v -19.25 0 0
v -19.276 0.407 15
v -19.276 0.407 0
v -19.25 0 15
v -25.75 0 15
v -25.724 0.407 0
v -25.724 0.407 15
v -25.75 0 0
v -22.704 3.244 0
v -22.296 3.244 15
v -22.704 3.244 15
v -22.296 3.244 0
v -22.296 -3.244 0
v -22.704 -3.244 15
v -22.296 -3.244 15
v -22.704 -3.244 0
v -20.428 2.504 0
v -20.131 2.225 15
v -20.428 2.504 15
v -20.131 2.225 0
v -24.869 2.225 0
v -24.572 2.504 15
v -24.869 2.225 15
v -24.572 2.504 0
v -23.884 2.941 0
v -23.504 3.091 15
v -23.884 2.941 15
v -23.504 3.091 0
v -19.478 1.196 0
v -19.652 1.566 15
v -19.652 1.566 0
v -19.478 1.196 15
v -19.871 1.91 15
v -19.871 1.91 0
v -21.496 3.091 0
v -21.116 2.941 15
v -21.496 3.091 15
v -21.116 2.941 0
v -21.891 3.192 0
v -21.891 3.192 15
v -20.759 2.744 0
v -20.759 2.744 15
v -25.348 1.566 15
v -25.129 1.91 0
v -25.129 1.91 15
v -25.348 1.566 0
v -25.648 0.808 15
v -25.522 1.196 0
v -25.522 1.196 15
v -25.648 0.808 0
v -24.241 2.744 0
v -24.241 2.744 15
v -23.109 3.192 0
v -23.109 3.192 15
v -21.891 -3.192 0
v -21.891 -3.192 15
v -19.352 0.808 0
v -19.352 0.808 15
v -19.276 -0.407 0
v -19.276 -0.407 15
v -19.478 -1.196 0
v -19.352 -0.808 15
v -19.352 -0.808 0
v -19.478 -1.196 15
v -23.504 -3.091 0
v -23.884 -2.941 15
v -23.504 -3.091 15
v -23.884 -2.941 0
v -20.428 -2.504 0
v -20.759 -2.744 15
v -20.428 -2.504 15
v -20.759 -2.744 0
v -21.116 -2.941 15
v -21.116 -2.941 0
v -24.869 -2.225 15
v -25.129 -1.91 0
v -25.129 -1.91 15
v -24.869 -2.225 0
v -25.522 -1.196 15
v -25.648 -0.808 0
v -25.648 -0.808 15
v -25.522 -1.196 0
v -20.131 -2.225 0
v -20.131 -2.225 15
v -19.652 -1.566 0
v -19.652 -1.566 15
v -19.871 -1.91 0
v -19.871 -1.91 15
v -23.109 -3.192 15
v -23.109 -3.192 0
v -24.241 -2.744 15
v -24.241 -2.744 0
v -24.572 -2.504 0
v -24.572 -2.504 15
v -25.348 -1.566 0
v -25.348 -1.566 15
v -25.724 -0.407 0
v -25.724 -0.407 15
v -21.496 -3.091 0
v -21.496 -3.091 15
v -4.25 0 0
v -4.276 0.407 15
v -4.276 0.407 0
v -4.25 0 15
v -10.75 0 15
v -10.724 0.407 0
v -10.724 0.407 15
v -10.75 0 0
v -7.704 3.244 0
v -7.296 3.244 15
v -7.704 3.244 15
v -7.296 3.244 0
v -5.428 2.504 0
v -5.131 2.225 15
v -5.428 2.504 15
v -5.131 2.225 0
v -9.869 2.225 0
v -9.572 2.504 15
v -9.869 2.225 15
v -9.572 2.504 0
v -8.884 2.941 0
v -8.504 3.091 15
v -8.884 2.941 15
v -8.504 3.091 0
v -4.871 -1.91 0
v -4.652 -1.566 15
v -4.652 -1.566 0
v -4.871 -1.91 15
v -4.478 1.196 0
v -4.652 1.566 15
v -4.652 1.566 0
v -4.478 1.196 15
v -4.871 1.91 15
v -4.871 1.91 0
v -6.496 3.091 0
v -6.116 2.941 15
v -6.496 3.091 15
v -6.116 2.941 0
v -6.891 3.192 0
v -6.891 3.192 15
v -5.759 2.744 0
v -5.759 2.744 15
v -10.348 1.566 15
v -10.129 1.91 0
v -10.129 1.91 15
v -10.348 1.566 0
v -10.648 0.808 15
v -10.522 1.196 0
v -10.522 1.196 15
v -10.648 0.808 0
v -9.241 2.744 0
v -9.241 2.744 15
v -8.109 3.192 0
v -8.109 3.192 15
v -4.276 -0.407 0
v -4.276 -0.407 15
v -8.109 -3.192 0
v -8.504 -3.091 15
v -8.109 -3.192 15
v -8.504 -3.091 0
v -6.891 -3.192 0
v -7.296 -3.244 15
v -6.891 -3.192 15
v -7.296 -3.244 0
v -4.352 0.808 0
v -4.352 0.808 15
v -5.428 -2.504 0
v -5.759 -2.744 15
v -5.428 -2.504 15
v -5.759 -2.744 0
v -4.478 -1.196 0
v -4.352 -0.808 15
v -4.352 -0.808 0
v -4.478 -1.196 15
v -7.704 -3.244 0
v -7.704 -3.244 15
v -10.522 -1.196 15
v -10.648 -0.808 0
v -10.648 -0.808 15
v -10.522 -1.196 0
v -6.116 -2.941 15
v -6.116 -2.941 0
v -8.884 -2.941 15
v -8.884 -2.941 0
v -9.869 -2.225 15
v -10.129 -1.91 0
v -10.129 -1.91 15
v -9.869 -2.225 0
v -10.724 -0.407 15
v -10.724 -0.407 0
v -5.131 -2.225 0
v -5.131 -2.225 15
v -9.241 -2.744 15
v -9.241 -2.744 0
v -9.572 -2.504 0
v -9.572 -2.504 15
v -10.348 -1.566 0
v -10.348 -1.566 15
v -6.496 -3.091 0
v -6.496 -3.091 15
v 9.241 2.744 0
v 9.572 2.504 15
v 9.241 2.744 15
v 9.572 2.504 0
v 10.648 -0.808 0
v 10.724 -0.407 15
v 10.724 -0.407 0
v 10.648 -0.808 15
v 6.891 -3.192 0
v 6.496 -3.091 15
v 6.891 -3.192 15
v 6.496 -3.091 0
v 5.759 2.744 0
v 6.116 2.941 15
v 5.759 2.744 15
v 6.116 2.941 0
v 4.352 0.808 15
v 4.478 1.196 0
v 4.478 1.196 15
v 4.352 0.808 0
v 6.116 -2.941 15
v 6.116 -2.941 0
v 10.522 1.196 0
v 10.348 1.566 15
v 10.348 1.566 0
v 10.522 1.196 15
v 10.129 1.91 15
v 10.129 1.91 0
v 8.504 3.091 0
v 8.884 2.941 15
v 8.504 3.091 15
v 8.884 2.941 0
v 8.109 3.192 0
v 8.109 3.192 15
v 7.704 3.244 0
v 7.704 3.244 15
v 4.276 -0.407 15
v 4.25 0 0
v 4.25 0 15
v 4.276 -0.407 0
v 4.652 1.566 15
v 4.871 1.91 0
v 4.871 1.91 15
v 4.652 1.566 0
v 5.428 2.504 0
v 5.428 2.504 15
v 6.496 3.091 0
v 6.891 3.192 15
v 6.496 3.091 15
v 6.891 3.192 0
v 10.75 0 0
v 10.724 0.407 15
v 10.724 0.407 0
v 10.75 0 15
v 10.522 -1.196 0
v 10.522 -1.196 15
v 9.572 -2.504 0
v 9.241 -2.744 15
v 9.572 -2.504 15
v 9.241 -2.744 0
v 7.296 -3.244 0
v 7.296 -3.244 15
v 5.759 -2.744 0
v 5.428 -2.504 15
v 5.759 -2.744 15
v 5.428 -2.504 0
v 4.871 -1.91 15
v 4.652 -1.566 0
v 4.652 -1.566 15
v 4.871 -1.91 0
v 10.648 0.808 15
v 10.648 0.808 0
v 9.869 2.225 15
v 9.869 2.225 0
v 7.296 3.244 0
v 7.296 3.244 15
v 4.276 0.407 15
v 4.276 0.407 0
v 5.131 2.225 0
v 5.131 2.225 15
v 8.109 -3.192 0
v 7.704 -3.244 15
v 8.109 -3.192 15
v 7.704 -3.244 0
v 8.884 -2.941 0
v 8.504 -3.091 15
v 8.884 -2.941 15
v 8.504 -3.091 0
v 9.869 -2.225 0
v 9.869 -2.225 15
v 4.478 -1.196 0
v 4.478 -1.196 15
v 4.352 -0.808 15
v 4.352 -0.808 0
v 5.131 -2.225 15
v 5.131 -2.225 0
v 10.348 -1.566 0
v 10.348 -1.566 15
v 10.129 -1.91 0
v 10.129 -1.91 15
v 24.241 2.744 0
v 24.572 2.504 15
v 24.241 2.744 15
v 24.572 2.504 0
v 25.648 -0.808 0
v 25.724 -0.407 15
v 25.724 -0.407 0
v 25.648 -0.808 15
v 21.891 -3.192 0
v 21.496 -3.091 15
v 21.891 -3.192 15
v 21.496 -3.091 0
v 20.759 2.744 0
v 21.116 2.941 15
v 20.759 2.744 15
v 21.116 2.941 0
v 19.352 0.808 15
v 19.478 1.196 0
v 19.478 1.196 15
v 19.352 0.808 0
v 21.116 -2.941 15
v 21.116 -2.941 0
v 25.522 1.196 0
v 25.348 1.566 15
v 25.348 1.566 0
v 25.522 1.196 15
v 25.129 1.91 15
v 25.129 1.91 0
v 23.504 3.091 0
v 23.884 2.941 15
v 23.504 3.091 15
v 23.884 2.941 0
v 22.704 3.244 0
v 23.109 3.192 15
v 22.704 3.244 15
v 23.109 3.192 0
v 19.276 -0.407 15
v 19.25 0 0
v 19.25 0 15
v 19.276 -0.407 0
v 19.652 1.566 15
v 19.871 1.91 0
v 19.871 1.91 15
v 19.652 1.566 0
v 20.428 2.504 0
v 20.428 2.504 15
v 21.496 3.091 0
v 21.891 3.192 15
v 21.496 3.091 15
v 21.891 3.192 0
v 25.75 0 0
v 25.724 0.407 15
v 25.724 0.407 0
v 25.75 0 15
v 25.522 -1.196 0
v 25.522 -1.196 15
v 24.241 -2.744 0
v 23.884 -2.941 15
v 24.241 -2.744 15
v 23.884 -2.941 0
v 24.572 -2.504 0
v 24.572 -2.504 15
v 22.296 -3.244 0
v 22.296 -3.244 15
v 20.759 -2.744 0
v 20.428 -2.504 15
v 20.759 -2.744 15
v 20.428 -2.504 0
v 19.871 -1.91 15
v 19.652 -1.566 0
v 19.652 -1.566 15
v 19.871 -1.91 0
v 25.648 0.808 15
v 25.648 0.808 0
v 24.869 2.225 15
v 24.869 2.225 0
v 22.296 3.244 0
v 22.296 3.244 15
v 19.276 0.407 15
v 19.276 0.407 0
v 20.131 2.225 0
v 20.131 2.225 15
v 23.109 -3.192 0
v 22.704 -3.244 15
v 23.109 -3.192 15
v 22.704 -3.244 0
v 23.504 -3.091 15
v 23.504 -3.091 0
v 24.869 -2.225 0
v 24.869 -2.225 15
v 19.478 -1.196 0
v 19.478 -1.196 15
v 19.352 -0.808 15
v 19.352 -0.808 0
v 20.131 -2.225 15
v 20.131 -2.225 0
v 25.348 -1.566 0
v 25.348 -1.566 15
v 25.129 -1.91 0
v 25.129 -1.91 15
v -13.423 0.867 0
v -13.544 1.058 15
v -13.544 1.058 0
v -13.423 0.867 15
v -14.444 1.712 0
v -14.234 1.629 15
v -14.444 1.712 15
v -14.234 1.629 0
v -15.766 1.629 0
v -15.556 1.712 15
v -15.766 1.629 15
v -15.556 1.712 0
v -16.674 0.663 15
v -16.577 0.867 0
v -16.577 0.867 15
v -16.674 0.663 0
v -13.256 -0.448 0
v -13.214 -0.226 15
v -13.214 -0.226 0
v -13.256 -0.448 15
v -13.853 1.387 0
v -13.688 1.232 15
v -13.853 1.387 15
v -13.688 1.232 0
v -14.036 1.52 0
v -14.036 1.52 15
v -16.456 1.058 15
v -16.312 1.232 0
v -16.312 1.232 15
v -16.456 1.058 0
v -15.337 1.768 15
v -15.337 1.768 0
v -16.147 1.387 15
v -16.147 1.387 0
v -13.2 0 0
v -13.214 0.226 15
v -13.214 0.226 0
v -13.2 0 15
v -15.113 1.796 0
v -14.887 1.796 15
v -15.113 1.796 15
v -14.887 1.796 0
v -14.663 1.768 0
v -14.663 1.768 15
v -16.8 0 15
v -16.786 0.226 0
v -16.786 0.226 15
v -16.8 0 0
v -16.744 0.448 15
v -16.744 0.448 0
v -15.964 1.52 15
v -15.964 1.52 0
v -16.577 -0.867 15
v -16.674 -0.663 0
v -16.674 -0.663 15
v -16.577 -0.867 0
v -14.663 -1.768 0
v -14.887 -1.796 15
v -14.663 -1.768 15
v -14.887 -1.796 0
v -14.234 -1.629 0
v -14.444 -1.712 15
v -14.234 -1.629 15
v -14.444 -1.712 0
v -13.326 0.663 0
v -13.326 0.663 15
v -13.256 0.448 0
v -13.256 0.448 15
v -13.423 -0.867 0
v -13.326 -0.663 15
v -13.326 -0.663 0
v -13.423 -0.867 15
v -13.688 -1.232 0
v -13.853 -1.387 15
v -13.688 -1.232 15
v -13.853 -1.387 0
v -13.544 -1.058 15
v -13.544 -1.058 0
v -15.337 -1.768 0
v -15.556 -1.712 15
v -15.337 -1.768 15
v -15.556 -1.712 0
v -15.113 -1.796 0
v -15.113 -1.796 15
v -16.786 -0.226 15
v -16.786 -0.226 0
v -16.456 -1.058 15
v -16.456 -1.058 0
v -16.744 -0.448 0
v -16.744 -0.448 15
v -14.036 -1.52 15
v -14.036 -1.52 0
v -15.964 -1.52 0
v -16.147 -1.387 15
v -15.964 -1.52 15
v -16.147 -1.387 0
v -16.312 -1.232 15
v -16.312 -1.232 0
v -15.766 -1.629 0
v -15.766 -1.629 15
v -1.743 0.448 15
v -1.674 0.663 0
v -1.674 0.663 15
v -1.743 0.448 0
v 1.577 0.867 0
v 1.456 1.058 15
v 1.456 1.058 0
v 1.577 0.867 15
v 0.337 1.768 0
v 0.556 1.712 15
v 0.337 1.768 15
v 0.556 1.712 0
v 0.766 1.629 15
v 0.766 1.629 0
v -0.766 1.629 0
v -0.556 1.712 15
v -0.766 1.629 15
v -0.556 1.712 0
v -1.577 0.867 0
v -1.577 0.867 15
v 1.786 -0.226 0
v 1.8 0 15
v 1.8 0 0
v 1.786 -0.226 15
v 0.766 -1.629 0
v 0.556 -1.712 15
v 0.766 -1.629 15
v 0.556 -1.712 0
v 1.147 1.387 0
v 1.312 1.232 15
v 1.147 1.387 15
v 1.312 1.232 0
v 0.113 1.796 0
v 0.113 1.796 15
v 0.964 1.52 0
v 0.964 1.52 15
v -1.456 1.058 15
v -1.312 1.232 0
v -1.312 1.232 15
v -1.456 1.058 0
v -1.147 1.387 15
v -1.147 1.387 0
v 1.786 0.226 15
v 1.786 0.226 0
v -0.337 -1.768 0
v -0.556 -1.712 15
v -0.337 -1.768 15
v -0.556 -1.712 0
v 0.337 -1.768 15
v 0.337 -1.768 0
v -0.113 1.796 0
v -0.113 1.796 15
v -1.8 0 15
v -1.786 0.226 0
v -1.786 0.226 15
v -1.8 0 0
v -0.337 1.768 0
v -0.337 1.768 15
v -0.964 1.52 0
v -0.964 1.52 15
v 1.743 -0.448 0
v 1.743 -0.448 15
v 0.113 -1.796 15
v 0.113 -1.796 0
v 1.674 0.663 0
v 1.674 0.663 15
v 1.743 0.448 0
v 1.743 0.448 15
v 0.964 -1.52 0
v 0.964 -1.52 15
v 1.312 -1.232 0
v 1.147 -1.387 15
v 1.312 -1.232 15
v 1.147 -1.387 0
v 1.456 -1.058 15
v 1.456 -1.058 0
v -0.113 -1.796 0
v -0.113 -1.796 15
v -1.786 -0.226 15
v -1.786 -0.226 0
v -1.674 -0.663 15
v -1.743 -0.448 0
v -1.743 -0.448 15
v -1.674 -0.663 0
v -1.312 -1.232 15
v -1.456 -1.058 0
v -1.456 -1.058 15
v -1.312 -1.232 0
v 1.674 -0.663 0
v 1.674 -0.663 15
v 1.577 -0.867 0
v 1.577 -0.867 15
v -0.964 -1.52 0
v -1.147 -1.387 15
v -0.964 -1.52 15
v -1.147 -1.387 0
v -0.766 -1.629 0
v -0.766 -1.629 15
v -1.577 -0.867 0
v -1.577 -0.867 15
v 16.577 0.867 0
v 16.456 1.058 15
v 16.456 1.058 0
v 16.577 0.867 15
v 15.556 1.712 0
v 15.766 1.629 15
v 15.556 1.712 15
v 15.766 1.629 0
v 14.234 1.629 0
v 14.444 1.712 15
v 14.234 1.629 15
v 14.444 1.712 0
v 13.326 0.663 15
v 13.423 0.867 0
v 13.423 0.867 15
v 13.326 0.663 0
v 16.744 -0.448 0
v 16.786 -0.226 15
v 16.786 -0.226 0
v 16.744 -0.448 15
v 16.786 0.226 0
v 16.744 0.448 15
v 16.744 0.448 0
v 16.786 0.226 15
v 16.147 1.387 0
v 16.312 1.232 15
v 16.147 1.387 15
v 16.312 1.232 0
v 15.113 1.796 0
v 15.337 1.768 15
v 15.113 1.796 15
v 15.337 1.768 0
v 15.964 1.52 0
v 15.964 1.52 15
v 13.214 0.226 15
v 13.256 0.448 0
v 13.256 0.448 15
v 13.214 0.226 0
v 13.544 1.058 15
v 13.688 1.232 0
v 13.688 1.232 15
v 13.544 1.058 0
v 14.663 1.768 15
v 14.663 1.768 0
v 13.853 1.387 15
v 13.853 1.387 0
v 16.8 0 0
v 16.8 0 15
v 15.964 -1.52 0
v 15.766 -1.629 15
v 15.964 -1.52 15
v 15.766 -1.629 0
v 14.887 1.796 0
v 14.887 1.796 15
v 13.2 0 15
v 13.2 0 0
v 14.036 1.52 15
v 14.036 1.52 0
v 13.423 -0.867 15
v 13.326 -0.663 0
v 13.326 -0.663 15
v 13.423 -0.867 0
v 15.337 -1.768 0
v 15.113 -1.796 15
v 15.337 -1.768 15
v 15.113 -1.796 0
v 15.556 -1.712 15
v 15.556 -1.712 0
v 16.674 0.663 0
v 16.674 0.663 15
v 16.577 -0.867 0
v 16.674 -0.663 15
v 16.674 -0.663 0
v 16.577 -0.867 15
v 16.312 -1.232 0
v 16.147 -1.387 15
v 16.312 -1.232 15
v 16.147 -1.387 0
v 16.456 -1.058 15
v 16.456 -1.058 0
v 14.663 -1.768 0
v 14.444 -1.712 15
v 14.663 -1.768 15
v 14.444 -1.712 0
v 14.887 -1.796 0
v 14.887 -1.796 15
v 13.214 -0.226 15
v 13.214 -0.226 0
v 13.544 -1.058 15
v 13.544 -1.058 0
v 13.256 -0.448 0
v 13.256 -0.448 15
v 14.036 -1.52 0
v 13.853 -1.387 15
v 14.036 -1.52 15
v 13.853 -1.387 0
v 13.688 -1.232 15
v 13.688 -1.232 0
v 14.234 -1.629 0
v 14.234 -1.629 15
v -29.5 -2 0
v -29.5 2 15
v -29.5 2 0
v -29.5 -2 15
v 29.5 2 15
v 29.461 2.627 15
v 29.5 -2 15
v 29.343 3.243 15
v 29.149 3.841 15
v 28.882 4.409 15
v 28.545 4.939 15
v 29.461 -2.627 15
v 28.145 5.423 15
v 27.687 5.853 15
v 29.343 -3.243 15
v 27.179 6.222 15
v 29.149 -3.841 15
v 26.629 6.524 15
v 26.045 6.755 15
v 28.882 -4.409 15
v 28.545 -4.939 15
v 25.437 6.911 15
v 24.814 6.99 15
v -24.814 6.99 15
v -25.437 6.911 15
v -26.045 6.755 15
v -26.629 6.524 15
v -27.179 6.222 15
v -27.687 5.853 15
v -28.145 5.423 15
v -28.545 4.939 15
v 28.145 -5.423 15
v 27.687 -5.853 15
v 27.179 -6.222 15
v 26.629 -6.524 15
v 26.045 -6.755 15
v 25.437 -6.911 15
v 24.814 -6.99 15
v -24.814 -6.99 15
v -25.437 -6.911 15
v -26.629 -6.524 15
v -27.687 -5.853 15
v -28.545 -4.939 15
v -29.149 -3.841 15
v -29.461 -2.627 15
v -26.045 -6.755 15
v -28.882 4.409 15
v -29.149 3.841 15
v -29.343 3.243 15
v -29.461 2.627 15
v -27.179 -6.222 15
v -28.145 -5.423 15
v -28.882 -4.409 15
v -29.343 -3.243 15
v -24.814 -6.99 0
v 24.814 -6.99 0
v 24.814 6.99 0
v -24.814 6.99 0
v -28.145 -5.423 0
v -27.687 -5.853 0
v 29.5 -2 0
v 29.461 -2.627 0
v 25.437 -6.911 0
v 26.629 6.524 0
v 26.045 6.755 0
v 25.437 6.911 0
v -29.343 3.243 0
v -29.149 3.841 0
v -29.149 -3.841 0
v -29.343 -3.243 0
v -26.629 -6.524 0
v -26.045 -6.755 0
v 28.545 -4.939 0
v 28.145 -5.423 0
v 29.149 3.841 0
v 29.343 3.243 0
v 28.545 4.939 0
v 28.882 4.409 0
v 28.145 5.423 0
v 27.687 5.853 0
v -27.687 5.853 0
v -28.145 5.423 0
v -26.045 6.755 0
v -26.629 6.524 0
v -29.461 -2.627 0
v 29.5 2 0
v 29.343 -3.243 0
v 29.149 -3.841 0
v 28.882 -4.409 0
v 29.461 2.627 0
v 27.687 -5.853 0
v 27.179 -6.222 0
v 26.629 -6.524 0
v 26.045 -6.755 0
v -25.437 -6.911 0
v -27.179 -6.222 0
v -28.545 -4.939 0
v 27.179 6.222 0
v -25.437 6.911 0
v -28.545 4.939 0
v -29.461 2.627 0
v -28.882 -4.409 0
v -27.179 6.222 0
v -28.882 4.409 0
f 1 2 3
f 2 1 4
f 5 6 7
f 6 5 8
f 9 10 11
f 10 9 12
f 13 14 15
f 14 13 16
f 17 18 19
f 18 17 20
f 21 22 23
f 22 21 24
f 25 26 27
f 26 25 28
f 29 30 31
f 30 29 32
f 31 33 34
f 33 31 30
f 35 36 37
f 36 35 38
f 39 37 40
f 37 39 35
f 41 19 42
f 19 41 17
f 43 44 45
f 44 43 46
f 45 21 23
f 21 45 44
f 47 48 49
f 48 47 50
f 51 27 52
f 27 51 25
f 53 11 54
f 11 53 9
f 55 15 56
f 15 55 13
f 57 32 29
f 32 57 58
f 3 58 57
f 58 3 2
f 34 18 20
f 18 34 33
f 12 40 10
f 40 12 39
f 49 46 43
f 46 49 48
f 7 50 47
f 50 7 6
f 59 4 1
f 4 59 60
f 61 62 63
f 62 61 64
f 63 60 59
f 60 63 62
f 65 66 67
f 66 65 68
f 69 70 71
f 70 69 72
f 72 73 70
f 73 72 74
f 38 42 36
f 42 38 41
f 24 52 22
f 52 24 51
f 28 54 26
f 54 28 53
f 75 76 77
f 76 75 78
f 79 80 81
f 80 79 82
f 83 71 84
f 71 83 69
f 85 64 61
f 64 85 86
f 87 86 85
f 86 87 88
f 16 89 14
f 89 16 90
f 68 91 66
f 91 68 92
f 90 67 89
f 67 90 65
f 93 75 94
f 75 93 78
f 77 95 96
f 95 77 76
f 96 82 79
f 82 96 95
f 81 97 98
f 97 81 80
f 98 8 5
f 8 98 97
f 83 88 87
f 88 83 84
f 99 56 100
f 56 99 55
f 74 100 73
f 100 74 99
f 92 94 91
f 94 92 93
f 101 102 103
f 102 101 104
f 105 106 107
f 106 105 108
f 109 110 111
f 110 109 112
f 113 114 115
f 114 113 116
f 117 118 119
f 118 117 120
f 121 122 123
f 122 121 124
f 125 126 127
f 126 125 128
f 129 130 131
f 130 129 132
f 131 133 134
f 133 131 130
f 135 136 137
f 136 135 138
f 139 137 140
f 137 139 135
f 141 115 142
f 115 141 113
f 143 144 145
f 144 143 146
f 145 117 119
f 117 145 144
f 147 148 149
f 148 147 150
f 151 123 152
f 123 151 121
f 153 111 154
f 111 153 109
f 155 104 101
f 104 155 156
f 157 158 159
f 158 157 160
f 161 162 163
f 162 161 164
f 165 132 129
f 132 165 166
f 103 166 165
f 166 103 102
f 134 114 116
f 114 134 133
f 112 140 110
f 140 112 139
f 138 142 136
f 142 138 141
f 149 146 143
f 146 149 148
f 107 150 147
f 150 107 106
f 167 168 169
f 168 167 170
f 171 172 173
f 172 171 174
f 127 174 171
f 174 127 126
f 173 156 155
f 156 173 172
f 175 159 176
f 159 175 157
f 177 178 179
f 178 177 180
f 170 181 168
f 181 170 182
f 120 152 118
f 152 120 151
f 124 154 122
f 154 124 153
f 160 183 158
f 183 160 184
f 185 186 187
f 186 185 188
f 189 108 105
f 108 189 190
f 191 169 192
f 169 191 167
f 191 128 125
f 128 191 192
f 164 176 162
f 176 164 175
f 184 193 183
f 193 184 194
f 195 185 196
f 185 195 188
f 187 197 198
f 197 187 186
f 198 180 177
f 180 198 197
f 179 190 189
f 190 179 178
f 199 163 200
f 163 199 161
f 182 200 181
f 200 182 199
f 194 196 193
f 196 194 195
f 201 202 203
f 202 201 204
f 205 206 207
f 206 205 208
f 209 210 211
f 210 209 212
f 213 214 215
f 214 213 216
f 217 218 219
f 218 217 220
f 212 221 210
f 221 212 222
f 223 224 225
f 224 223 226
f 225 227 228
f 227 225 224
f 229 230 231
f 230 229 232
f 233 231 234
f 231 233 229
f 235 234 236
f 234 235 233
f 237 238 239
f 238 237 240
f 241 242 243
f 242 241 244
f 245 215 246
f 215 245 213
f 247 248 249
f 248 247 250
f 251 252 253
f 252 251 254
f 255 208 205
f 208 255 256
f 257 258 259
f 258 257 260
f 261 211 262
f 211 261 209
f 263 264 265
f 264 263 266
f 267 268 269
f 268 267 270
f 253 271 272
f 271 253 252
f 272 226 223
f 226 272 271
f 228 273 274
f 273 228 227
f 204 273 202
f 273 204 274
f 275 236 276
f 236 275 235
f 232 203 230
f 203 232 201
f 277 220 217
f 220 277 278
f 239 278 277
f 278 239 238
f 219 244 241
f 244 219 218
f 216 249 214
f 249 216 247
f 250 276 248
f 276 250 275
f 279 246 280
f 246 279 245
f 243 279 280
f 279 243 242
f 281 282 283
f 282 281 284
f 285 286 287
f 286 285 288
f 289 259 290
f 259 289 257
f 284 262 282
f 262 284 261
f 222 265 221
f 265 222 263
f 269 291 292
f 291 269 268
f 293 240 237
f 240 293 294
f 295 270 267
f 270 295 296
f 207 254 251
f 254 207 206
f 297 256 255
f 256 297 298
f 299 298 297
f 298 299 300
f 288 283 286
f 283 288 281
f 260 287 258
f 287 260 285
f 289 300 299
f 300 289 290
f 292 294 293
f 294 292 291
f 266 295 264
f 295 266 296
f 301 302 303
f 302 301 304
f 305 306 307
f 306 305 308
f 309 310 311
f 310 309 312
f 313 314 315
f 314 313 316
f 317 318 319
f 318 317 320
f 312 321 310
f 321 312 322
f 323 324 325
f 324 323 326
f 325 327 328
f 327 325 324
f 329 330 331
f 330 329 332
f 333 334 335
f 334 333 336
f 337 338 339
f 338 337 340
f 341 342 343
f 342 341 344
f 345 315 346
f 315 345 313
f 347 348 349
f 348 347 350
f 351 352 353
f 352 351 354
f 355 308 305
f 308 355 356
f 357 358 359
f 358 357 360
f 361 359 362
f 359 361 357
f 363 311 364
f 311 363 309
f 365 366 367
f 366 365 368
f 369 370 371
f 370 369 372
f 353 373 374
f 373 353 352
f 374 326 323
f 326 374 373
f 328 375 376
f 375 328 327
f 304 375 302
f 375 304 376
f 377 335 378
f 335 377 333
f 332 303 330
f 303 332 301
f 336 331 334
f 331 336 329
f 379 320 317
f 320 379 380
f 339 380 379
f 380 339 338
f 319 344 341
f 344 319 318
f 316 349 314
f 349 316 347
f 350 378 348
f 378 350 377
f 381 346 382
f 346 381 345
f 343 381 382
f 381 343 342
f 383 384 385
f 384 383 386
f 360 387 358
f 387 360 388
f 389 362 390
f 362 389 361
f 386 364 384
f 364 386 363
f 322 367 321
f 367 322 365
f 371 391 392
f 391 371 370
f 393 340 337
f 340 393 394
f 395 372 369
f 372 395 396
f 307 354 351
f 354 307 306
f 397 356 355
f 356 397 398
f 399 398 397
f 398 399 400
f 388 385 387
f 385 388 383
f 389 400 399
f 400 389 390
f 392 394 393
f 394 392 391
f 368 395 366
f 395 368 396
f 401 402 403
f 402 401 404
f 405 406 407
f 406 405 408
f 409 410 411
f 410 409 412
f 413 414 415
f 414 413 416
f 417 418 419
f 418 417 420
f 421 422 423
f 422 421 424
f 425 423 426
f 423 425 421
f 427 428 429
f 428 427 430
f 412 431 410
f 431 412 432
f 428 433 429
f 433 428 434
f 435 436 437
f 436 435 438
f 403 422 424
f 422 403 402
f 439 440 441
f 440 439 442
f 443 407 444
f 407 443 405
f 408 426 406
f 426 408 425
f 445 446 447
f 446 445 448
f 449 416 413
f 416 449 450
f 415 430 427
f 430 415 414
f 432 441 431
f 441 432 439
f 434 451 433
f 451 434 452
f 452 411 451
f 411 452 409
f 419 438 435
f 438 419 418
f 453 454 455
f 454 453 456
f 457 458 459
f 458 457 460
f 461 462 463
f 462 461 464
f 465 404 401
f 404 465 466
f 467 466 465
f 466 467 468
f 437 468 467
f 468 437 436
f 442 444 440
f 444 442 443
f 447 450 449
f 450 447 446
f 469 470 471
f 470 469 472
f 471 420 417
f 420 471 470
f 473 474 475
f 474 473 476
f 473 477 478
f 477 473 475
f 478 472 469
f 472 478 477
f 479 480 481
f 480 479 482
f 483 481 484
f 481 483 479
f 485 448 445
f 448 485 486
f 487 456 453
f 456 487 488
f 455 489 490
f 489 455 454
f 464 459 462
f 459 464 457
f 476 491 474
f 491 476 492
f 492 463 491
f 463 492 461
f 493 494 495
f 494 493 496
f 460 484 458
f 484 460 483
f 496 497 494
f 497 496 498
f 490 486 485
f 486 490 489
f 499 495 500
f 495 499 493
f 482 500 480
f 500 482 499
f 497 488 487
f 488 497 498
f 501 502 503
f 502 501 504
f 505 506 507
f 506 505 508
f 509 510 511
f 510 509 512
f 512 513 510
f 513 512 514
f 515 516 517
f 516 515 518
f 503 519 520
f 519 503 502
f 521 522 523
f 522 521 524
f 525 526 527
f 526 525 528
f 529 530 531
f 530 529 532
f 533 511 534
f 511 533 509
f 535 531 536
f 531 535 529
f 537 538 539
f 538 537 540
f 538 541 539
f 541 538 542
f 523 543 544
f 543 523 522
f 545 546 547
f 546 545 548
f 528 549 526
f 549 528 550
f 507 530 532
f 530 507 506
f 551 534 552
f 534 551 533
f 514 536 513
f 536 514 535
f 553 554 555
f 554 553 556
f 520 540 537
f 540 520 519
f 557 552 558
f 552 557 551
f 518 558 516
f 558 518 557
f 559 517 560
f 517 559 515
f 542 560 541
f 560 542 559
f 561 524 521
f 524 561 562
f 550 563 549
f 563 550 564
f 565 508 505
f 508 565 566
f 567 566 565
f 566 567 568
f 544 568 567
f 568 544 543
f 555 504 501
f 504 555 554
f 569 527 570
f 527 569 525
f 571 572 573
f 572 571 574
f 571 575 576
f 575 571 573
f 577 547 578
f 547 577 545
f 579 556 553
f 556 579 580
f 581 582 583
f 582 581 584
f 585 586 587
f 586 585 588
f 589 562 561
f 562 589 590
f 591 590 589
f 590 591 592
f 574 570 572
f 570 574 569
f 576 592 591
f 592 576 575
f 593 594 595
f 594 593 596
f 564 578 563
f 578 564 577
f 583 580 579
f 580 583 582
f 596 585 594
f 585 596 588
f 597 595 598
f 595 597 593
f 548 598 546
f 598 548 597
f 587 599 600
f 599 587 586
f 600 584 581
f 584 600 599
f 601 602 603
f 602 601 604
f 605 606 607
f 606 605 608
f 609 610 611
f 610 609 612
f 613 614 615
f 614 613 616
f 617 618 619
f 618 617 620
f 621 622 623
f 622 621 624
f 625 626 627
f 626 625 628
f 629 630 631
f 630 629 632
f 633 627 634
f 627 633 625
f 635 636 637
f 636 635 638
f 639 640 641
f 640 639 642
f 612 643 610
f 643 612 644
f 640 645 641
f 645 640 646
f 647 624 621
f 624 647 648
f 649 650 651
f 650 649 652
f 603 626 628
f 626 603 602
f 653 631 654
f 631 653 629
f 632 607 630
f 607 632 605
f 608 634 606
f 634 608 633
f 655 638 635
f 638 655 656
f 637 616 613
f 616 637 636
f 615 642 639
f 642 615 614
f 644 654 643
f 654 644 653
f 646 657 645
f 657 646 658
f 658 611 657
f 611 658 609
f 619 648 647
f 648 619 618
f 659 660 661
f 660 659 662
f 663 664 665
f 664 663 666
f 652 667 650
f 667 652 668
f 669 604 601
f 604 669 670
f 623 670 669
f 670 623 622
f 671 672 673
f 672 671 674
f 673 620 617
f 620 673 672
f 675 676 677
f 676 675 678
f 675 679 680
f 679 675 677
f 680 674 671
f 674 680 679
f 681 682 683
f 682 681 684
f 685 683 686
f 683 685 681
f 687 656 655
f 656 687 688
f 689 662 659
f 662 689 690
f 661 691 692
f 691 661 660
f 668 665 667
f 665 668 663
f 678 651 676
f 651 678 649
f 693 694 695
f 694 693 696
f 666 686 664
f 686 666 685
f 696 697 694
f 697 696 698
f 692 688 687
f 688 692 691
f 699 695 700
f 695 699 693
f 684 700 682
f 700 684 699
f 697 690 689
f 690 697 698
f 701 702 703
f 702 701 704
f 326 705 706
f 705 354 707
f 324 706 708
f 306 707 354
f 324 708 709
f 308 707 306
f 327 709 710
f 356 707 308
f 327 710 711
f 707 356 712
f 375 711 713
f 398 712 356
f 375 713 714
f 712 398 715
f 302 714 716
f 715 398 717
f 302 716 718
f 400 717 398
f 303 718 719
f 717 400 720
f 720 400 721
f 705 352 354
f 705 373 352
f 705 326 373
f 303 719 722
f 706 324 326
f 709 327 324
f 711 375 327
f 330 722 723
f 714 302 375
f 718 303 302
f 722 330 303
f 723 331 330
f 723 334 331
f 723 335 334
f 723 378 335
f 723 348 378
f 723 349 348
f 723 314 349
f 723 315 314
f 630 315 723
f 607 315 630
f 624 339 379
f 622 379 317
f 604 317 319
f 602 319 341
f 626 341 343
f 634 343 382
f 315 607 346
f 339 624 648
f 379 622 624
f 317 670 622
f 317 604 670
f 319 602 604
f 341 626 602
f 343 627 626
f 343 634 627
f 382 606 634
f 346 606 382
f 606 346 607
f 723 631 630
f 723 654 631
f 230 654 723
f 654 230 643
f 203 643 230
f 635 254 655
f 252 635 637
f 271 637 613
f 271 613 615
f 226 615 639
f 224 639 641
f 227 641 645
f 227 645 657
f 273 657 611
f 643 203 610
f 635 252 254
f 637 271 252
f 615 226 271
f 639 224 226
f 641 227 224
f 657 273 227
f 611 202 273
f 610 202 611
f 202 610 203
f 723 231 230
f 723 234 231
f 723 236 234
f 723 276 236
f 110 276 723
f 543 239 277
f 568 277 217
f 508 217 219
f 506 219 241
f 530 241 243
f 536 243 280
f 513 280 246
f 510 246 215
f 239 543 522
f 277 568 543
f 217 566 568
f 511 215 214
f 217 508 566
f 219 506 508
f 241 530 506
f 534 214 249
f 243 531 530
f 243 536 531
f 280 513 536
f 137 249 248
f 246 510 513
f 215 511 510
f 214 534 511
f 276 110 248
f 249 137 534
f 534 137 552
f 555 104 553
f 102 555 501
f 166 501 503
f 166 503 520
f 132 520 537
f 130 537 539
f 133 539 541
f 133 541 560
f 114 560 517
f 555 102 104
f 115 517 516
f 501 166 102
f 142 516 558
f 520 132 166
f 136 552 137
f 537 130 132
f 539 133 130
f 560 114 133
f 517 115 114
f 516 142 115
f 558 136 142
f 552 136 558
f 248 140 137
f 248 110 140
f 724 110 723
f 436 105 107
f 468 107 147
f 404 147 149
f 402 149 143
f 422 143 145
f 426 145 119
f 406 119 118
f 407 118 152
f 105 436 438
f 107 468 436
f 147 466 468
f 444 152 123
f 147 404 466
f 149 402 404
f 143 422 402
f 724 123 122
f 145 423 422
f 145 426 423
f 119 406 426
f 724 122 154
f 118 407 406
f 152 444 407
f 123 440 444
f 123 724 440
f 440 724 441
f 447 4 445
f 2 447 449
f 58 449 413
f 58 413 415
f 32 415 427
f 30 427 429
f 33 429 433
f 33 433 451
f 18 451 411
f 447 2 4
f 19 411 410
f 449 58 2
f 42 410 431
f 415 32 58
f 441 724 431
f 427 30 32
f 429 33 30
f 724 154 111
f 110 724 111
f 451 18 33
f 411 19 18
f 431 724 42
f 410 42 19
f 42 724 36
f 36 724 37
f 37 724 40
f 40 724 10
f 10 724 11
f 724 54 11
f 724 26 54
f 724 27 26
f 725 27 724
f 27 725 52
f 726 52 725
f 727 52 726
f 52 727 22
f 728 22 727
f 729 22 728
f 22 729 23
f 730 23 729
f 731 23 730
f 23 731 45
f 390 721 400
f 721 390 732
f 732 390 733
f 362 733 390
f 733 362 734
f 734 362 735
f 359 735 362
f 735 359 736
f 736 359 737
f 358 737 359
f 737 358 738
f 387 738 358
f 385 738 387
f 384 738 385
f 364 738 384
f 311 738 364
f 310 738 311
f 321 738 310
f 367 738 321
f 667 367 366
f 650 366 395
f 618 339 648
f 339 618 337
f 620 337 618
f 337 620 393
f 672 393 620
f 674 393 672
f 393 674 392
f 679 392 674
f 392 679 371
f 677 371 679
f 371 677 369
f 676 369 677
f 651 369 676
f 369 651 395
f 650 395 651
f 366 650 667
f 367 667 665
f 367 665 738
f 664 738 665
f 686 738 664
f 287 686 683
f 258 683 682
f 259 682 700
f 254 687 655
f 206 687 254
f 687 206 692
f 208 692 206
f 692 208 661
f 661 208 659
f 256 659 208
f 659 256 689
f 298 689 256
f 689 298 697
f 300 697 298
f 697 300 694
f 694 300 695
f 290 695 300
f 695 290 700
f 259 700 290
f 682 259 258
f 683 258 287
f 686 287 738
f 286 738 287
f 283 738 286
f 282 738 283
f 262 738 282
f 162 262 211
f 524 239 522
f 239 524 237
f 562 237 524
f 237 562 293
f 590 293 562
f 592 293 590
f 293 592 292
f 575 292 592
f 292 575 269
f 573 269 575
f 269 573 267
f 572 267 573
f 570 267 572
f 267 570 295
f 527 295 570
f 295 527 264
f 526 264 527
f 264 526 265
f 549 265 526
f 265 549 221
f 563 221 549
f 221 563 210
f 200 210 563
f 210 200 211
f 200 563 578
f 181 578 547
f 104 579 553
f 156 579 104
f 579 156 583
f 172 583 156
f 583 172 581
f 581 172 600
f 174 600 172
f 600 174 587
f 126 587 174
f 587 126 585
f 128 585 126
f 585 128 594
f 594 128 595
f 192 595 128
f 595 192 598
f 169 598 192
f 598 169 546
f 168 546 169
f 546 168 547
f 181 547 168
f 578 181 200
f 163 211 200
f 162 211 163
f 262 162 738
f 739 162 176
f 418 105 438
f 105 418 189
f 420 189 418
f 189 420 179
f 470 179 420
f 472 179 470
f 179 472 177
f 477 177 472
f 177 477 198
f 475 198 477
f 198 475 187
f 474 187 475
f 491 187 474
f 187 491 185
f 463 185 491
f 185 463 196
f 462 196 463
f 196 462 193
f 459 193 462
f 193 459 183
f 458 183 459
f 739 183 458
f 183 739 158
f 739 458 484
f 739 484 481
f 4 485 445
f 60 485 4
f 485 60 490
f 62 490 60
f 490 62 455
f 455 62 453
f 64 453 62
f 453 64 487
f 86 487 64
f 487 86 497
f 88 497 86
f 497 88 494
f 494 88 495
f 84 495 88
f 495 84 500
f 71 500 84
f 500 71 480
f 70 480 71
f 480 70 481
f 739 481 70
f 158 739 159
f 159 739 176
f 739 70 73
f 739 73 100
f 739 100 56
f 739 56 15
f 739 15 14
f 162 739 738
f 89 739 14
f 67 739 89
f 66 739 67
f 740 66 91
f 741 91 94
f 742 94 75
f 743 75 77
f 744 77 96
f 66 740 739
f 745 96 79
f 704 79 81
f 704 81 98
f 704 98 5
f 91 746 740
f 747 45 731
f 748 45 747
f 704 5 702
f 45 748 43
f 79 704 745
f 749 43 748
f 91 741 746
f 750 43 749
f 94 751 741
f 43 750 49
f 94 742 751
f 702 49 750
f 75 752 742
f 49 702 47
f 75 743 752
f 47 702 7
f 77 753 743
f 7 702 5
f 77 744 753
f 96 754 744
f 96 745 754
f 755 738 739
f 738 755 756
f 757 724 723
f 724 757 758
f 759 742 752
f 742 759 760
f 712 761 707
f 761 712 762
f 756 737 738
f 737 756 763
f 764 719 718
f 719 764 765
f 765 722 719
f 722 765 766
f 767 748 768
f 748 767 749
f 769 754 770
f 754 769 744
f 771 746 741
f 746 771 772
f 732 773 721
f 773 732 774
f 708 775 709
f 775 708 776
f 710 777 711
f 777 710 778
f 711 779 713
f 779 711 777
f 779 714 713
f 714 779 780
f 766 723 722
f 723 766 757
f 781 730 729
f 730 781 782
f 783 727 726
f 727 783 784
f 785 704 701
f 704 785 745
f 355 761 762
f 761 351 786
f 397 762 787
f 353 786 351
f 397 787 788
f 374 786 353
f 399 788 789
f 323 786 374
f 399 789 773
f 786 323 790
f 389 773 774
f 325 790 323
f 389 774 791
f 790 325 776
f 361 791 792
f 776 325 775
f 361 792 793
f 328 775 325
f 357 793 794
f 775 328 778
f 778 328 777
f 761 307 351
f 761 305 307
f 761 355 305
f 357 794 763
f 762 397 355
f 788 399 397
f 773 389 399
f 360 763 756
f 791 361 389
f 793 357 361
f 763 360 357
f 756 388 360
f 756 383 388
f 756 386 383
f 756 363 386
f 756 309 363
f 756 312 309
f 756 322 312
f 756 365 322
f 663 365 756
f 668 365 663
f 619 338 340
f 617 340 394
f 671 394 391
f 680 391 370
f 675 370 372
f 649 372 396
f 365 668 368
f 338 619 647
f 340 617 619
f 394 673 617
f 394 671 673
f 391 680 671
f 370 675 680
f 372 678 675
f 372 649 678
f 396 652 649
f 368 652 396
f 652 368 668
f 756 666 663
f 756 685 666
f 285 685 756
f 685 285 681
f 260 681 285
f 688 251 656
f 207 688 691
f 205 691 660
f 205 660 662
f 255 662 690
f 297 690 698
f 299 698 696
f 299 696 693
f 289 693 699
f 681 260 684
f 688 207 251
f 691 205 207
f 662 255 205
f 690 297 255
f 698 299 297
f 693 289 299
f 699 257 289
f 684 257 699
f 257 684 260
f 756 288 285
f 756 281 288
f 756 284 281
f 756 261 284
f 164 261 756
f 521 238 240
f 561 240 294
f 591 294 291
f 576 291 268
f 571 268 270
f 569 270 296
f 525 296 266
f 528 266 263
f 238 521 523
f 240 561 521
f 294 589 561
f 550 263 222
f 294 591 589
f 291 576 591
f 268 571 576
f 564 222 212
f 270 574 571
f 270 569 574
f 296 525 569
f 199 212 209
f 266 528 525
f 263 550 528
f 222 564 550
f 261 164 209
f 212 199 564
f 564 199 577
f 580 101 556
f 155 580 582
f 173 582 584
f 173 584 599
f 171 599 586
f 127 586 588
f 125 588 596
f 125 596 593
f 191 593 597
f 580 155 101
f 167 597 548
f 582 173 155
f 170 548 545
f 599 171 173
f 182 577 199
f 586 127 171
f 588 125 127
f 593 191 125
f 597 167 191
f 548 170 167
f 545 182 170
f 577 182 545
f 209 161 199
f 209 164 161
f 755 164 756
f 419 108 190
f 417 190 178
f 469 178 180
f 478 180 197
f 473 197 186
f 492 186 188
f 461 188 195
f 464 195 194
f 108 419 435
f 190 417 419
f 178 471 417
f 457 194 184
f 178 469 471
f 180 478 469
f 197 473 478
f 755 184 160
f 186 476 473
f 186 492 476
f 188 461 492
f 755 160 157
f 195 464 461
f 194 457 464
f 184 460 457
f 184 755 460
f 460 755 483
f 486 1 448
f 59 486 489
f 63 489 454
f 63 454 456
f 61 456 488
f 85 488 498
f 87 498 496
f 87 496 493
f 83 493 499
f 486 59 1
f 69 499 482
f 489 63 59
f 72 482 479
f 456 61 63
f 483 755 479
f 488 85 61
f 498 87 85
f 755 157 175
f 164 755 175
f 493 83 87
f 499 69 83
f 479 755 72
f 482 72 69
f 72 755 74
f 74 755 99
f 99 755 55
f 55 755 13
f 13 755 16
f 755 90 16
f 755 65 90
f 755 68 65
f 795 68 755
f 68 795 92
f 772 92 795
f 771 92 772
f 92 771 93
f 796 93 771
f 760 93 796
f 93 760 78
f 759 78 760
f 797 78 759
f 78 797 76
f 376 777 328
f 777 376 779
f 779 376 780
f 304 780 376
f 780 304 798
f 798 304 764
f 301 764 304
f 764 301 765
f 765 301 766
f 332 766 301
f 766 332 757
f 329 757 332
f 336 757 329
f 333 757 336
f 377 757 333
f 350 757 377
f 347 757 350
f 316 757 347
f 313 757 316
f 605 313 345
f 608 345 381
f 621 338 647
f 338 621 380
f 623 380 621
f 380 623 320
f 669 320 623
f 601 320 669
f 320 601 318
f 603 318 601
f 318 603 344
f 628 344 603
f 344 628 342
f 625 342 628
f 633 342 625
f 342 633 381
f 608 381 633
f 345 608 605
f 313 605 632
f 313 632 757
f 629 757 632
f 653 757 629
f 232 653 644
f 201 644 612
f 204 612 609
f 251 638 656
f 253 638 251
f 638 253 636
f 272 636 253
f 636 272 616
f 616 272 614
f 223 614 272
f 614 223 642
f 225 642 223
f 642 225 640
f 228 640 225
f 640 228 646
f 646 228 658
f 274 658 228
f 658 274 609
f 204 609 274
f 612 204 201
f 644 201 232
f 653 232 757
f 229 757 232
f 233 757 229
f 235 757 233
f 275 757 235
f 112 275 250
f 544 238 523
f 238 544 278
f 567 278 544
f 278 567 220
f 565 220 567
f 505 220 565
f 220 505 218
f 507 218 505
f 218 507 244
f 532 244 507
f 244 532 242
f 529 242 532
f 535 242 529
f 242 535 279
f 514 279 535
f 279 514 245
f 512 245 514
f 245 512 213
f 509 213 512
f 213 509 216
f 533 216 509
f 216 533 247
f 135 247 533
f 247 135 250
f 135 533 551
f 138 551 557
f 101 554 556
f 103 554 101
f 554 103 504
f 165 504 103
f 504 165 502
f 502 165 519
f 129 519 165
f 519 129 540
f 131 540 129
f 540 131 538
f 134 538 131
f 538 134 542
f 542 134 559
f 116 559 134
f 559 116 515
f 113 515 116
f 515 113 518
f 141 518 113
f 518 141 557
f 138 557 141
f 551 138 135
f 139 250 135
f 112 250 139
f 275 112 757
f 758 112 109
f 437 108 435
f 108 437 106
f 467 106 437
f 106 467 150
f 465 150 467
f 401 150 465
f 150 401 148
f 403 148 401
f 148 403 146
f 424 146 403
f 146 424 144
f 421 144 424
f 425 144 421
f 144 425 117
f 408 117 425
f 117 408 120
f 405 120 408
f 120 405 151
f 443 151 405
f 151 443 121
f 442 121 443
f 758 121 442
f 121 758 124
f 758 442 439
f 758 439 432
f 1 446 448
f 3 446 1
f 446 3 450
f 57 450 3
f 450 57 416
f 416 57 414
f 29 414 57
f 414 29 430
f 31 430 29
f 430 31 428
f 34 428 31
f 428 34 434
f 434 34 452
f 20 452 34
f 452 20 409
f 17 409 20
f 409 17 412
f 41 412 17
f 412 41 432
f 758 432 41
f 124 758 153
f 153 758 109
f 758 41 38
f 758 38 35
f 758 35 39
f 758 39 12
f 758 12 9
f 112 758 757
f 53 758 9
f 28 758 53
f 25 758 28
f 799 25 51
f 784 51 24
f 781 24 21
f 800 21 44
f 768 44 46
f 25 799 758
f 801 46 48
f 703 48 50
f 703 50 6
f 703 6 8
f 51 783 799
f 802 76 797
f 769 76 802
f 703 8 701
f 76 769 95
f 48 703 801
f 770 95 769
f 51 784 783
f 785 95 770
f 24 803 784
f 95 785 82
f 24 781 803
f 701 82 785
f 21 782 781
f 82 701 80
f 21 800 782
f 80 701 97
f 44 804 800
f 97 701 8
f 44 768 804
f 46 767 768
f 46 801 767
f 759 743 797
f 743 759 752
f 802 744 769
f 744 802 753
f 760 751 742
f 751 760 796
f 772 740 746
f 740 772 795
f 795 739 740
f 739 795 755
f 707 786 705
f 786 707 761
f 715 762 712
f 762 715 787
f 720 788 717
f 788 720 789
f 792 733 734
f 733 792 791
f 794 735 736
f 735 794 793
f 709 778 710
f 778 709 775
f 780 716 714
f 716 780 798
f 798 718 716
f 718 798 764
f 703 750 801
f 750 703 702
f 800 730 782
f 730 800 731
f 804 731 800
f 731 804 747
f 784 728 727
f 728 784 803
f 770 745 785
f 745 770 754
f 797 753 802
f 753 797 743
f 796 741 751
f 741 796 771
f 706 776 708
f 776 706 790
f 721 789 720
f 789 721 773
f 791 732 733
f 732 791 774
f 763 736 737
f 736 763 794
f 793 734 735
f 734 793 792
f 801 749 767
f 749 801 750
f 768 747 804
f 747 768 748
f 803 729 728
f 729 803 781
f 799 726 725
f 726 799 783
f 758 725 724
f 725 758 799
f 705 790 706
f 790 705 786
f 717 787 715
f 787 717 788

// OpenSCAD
$fn = 50;


difference() {
	union() {
		translate(v = [0, 0, 0]) {
			rotate(a = [0, 0, 0]) {
				hull() {
					translate(v = [-24.5000000000, 2.0000000000, 0]) {
						rotate(a = [0, 0, 0]) {
							translate(v = [0, 0, 0]) {
								rotate(a = [0, 0, 0]) {
									cylinder(h = 15, r = 5);
								}
							}
						}
					}
					translate(v = [24.5000000000, 2.0000000000, 0]) {
						rotate(a = [0, 0, 0]) {
							translate(v = [0, 0, 0]) {
								rotate(a = [0, 0, 0]) {
									cylinder(h = 15, r = 5);
								}
							}
						}
					}
					translate(v = [-24.5000000000, -2.0000000000, 0]) {
						rotate(a = [0, 0, 0]) {
							translate(v = [0, 0, 0]) {
								rotate(a = [0, 0, 0]) {
									cylinder(h = 15, r = 5);
								}
							}
						}
					}
					translate(v = [24.5000000000, -2.0000000000, 0]) {
						rotate(a = [0, 0, 0]) {
							translate(v = [0, 0, 0]) {
								rotate(a = [0, 0, 0]) {
									cylinder(h = 15, r = 5);
								}
							}
						}
					}
				}
			}
		}
	}
	union() {
		translate(v = [-22.5000000000, 0.0000000000, 0]) {
			rotate(a = [0, 0, 0]) {
				translate(v = [0, 0, -50]) {
					rotate(a = [0, 0, 0]) {
						cylinder(h = 100, r = 3.2500000000);
					}
				}
			}
		}
		translate(v = [-7.5000000000, 0.0000000000, 0]) {
			rotate(a = [0, 0, 0]) {
				translate(v = [0, 0, -50]) {
					rotate(a = [0, 0, 0]) {
						cylinder(h = 100, r = 3.2500000000);
					}
				}
			}
		}
		translate(v = [7.5000000000, 0.0000000000, 0]) {
			rotate(a = [0, 0, 0]) {
				translate(v = [0, 0, -50]) {
					rotate(a = [0, 0, 0]) {
						cylinder(h = 100, r = 3.2500000000);
					}
				}
			}
		}
		translate(v = [22.5000000000, 0.0000000000, 0]) {
			rotate(a = [0, 0, 0]) {
				translate(v = [0, 0, -50]) {
					rotate(a = [0, 0, 0]) {
						cylinder(h = 100, r = 3.2500000000);
					}
				}
			}
		}
		translate(v = [-22.5000000000, 0.0000000000, 0]) {
			rotate(a = [0, 0, 0]) {
				translate(v = [0, 0, -50]) {
					rotate(a = [0, 0, 0]) {
						cylinder(h = 100, r = 1.8000000000);
					}
				}
			}
		}
		translate(v = [-15.0000000000, 0.0000000000, 0]) {
			rotate(a = [0, 0, 0]) {
				translate(v = [0, 0, -50]) {
					rotate(a = [0, 0, 0]) {
						cylinder(h = 100, r = 1.8000000000);
					}
				}
			}
		}
		translate(v = [-7.5000000000, 0.0000000000, 0]) {
			rotate(a = [0, 0, 0]) {
				translate(v = [0, 0, -50]) {
					rotate(a = [0, 0, 0]) {
						cylinder(h = 100, r = 1.8000000000);
					}
				}
			}
		}
		translate(v = [0.0000000000, 0.0000000000, 0]) {
			rotate(a = [0, 0, 0]) {
				translate(v = [0, 0, -50]) {
					rotate(a = [0, 0, 0]) {
						cylinder(h = 100, r = 1.8000000000);
					}
				}
			}
		}
		translate(v = [7.5000000000, 0.0000000000, 0]) {
			rotate(a = [0, 0, 0]) {
				translate(v = [0, 0, -50]) {
					rotate(a = [0, 0, 0]) {
						cylinder(h = 100, r = 1.8000000000);
					}
				}
			}
		}
		translate(v = [15.0000000000, 0.0000000000, 0]) {
			rotate(a = [0, 0, 0]) {
				translate(v = [0, 0, -50]) {
					rotate(a = [0, 0, 0]) {
						cylinder(h = 100, r = 1.8000000000);
					}
				}
			}
		}
		translate(v = [22.5000000000, 0.0000000000, 0]) {
			rotate(a = [0, 0, 0]) {
				translate(v = [0, 0, -50]) {
					rotate(a = [0, 0, 0]) {
						cylinder(h = 100, r = 1.8000000000);
					}
				}
			}
		}
	}
}
